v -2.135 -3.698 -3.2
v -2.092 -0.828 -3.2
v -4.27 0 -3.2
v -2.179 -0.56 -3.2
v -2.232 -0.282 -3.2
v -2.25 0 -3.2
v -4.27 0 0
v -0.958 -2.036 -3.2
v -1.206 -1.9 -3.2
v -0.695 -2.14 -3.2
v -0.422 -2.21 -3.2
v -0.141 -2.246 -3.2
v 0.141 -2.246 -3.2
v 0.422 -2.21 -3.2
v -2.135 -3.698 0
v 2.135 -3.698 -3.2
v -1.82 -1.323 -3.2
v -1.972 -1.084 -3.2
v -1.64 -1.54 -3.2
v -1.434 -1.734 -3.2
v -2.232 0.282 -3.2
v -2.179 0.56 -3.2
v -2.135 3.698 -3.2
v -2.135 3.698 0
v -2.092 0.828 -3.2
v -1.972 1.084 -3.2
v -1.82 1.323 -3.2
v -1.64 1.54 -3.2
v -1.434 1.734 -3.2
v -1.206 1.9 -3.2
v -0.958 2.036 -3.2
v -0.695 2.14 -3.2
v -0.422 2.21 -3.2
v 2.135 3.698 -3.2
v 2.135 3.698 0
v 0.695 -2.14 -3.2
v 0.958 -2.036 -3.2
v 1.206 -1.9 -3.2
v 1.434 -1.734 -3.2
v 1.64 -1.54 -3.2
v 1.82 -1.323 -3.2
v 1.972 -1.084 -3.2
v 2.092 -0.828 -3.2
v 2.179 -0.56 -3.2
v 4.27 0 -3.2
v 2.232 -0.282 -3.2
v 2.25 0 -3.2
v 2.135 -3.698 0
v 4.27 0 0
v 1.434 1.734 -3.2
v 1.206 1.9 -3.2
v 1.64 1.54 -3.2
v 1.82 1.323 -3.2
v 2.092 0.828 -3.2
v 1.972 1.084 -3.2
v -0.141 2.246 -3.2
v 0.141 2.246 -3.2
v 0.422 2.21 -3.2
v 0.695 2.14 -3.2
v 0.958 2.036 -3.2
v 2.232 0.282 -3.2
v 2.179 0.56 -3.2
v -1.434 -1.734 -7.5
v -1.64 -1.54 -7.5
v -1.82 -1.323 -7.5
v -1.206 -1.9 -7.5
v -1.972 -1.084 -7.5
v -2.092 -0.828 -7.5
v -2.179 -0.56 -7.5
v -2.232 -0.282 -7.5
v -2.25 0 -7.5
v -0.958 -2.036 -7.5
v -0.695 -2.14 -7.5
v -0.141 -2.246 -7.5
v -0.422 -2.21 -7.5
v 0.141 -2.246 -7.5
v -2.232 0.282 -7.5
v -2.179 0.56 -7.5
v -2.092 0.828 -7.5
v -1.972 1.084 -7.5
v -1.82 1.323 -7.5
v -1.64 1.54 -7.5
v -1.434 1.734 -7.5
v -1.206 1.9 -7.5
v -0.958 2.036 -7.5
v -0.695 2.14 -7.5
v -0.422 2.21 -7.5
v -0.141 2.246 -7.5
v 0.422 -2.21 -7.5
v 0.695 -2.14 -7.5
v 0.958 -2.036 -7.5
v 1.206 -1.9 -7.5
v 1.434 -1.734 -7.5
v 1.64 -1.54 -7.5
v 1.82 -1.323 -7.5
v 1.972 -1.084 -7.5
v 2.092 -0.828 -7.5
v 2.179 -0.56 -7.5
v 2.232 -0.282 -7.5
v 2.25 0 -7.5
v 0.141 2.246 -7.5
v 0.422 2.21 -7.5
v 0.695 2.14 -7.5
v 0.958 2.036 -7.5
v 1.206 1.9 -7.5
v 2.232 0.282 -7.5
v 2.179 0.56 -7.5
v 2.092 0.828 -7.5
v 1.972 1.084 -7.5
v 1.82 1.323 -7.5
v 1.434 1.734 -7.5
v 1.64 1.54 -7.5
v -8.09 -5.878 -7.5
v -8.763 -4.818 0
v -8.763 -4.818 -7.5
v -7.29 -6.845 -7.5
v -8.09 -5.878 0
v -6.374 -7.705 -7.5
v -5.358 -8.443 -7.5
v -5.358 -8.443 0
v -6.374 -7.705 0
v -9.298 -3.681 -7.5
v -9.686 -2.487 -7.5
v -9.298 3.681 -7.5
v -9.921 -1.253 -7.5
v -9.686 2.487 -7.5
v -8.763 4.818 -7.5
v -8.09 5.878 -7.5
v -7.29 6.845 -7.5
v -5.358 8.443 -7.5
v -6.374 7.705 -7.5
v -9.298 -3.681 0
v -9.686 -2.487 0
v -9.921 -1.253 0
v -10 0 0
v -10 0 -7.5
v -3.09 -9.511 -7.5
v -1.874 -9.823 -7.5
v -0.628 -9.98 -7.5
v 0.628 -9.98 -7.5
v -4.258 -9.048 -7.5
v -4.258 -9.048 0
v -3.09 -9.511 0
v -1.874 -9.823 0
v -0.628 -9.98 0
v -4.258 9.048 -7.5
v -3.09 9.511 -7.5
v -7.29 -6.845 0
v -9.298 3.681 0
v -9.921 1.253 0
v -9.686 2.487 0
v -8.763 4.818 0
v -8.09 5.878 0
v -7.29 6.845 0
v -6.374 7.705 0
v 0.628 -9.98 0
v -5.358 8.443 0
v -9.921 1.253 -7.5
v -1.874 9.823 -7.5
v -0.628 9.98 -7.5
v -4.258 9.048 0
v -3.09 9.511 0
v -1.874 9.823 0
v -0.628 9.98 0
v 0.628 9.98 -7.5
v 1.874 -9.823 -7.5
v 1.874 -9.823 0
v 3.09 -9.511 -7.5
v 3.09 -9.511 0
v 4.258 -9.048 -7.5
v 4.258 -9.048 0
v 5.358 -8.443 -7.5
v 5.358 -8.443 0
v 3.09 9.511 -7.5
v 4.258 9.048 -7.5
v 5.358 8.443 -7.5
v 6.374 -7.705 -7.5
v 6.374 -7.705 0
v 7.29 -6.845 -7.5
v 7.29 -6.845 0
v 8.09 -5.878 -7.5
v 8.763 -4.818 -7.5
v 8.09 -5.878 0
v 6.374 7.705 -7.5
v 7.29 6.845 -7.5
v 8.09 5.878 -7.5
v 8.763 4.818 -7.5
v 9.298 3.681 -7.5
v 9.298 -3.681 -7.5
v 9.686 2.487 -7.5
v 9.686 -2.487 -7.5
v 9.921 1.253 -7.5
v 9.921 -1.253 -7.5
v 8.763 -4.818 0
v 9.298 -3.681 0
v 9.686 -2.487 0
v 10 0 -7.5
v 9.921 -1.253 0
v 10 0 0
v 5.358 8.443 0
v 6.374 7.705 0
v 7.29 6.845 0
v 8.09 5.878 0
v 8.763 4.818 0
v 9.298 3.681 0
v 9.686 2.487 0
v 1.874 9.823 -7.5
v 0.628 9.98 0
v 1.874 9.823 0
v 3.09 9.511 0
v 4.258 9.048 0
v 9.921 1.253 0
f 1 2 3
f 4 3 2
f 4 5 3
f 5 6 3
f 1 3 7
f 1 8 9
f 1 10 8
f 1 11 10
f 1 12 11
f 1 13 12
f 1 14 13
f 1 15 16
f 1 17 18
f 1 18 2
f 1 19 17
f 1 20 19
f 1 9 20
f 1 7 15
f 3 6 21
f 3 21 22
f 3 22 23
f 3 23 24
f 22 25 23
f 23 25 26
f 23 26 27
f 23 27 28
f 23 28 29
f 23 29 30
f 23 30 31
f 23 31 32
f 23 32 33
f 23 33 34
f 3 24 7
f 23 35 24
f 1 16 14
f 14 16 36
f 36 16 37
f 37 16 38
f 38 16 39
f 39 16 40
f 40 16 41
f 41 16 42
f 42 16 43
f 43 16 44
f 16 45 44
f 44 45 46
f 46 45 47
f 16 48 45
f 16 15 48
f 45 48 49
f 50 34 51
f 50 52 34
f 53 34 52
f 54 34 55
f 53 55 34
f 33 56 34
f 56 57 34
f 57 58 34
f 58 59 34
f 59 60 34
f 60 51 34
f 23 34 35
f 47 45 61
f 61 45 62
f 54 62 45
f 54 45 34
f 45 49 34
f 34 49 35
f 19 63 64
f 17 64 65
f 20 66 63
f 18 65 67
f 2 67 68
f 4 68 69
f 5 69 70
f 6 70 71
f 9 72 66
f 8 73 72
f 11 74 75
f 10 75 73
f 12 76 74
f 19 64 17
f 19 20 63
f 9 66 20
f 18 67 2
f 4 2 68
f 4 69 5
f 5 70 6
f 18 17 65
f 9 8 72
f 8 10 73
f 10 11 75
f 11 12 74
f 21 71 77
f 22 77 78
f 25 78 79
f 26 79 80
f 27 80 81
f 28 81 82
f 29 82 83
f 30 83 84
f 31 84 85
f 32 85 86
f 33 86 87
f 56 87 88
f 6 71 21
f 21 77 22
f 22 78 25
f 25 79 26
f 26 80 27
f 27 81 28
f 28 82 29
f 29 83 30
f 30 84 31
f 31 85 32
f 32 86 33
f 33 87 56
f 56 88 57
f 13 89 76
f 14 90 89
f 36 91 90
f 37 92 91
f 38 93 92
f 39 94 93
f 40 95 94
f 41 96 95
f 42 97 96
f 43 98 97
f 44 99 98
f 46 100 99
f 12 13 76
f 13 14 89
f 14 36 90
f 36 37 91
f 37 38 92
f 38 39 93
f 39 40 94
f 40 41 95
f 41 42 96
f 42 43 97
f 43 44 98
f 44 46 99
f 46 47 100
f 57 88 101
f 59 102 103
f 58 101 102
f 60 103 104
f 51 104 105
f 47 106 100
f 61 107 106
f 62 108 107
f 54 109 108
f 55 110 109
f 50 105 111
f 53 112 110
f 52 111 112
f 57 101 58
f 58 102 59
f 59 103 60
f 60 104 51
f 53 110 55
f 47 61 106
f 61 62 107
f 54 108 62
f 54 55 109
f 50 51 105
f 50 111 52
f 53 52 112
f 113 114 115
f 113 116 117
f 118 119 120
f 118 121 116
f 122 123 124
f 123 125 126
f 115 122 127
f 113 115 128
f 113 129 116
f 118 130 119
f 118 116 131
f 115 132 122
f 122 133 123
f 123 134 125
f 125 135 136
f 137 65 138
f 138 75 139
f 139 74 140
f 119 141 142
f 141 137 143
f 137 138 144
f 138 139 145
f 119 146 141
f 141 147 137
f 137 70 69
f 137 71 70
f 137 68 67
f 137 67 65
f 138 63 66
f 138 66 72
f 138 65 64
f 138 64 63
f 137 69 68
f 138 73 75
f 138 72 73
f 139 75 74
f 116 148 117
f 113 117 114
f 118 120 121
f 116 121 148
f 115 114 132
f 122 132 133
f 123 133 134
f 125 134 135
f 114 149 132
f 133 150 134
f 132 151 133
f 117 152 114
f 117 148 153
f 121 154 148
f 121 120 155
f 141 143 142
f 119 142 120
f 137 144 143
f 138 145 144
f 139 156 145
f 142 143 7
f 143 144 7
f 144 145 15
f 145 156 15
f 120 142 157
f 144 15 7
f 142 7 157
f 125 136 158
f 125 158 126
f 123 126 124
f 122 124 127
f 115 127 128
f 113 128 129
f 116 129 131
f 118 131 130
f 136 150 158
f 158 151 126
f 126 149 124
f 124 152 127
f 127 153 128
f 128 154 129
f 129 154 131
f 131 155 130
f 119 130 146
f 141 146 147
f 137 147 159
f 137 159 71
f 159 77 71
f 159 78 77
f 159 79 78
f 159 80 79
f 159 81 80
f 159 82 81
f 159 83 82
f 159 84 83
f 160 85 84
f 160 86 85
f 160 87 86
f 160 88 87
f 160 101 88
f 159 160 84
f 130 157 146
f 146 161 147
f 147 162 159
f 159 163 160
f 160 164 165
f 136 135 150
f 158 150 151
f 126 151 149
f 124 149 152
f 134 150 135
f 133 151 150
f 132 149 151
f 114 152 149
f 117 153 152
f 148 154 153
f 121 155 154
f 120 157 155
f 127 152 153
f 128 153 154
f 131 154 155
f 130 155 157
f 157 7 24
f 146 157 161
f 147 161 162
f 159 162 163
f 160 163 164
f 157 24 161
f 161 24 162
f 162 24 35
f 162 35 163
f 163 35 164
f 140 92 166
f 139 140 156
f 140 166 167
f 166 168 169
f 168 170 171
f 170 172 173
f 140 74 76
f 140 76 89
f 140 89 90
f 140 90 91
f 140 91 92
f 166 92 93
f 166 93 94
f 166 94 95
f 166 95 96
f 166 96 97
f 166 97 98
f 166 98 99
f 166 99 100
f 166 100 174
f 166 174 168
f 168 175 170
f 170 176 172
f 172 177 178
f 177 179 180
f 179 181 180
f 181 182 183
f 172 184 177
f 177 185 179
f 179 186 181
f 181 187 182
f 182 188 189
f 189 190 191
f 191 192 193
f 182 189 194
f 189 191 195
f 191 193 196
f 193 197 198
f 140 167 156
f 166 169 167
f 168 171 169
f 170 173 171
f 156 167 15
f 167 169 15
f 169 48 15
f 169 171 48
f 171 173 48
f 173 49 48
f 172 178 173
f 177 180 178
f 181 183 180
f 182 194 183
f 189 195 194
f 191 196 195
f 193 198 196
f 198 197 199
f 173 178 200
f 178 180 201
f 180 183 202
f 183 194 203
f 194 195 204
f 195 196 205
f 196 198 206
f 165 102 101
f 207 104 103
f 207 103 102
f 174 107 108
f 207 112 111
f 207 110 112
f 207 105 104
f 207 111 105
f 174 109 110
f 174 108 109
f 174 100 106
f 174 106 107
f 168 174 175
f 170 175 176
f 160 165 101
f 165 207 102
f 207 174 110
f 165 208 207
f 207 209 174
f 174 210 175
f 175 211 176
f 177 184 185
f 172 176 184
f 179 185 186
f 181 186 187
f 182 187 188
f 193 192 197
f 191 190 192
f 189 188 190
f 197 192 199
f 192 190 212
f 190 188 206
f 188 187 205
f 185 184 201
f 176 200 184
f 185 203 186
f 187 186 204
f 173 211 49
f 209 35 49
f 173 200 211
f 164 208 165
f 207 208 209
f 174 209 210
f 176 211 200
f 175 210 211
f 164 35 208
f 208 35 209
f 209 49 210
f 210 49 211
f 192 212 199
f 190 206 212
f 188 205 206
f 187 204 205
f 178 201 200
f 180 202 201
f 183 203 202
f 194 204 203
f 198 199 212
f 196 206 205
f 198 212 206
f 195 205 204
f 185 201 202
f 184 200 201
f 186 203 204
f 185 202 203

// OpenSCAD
$fn = 50;


difference() {
	union() {
		translate(v = [0, 0, -7.5000000000]) {
			cylinder(h = 7.5000000000, r = 10.0000000000);
		}
	}
	union() {
		translate(v = [0, 0, 0]) {
			rotate(a = [0, 0, 0]) {
				difference() {
					union() {
						translate(v = [0, 0, -3.2000000000]) {
							linear_extrude(height = 3.2000000000) {
								polygon(points = [[4.2698000000, 0.0000000000], [2.1349000000, 3.6977552691], [-2.1349000000, 3.6977552691], [-4.2698000000, 0.0000000000], [-2.1349000000, -3.6977552691], [2.1349000000, -3.6977552691]]);
							}
						}
					}
					union();
				}
			}
		}
		#translate(v = [0, 0, -100.0000000000]) {
			cylinder(h = 200, r = 2.2500000000);
		}
	}
}
